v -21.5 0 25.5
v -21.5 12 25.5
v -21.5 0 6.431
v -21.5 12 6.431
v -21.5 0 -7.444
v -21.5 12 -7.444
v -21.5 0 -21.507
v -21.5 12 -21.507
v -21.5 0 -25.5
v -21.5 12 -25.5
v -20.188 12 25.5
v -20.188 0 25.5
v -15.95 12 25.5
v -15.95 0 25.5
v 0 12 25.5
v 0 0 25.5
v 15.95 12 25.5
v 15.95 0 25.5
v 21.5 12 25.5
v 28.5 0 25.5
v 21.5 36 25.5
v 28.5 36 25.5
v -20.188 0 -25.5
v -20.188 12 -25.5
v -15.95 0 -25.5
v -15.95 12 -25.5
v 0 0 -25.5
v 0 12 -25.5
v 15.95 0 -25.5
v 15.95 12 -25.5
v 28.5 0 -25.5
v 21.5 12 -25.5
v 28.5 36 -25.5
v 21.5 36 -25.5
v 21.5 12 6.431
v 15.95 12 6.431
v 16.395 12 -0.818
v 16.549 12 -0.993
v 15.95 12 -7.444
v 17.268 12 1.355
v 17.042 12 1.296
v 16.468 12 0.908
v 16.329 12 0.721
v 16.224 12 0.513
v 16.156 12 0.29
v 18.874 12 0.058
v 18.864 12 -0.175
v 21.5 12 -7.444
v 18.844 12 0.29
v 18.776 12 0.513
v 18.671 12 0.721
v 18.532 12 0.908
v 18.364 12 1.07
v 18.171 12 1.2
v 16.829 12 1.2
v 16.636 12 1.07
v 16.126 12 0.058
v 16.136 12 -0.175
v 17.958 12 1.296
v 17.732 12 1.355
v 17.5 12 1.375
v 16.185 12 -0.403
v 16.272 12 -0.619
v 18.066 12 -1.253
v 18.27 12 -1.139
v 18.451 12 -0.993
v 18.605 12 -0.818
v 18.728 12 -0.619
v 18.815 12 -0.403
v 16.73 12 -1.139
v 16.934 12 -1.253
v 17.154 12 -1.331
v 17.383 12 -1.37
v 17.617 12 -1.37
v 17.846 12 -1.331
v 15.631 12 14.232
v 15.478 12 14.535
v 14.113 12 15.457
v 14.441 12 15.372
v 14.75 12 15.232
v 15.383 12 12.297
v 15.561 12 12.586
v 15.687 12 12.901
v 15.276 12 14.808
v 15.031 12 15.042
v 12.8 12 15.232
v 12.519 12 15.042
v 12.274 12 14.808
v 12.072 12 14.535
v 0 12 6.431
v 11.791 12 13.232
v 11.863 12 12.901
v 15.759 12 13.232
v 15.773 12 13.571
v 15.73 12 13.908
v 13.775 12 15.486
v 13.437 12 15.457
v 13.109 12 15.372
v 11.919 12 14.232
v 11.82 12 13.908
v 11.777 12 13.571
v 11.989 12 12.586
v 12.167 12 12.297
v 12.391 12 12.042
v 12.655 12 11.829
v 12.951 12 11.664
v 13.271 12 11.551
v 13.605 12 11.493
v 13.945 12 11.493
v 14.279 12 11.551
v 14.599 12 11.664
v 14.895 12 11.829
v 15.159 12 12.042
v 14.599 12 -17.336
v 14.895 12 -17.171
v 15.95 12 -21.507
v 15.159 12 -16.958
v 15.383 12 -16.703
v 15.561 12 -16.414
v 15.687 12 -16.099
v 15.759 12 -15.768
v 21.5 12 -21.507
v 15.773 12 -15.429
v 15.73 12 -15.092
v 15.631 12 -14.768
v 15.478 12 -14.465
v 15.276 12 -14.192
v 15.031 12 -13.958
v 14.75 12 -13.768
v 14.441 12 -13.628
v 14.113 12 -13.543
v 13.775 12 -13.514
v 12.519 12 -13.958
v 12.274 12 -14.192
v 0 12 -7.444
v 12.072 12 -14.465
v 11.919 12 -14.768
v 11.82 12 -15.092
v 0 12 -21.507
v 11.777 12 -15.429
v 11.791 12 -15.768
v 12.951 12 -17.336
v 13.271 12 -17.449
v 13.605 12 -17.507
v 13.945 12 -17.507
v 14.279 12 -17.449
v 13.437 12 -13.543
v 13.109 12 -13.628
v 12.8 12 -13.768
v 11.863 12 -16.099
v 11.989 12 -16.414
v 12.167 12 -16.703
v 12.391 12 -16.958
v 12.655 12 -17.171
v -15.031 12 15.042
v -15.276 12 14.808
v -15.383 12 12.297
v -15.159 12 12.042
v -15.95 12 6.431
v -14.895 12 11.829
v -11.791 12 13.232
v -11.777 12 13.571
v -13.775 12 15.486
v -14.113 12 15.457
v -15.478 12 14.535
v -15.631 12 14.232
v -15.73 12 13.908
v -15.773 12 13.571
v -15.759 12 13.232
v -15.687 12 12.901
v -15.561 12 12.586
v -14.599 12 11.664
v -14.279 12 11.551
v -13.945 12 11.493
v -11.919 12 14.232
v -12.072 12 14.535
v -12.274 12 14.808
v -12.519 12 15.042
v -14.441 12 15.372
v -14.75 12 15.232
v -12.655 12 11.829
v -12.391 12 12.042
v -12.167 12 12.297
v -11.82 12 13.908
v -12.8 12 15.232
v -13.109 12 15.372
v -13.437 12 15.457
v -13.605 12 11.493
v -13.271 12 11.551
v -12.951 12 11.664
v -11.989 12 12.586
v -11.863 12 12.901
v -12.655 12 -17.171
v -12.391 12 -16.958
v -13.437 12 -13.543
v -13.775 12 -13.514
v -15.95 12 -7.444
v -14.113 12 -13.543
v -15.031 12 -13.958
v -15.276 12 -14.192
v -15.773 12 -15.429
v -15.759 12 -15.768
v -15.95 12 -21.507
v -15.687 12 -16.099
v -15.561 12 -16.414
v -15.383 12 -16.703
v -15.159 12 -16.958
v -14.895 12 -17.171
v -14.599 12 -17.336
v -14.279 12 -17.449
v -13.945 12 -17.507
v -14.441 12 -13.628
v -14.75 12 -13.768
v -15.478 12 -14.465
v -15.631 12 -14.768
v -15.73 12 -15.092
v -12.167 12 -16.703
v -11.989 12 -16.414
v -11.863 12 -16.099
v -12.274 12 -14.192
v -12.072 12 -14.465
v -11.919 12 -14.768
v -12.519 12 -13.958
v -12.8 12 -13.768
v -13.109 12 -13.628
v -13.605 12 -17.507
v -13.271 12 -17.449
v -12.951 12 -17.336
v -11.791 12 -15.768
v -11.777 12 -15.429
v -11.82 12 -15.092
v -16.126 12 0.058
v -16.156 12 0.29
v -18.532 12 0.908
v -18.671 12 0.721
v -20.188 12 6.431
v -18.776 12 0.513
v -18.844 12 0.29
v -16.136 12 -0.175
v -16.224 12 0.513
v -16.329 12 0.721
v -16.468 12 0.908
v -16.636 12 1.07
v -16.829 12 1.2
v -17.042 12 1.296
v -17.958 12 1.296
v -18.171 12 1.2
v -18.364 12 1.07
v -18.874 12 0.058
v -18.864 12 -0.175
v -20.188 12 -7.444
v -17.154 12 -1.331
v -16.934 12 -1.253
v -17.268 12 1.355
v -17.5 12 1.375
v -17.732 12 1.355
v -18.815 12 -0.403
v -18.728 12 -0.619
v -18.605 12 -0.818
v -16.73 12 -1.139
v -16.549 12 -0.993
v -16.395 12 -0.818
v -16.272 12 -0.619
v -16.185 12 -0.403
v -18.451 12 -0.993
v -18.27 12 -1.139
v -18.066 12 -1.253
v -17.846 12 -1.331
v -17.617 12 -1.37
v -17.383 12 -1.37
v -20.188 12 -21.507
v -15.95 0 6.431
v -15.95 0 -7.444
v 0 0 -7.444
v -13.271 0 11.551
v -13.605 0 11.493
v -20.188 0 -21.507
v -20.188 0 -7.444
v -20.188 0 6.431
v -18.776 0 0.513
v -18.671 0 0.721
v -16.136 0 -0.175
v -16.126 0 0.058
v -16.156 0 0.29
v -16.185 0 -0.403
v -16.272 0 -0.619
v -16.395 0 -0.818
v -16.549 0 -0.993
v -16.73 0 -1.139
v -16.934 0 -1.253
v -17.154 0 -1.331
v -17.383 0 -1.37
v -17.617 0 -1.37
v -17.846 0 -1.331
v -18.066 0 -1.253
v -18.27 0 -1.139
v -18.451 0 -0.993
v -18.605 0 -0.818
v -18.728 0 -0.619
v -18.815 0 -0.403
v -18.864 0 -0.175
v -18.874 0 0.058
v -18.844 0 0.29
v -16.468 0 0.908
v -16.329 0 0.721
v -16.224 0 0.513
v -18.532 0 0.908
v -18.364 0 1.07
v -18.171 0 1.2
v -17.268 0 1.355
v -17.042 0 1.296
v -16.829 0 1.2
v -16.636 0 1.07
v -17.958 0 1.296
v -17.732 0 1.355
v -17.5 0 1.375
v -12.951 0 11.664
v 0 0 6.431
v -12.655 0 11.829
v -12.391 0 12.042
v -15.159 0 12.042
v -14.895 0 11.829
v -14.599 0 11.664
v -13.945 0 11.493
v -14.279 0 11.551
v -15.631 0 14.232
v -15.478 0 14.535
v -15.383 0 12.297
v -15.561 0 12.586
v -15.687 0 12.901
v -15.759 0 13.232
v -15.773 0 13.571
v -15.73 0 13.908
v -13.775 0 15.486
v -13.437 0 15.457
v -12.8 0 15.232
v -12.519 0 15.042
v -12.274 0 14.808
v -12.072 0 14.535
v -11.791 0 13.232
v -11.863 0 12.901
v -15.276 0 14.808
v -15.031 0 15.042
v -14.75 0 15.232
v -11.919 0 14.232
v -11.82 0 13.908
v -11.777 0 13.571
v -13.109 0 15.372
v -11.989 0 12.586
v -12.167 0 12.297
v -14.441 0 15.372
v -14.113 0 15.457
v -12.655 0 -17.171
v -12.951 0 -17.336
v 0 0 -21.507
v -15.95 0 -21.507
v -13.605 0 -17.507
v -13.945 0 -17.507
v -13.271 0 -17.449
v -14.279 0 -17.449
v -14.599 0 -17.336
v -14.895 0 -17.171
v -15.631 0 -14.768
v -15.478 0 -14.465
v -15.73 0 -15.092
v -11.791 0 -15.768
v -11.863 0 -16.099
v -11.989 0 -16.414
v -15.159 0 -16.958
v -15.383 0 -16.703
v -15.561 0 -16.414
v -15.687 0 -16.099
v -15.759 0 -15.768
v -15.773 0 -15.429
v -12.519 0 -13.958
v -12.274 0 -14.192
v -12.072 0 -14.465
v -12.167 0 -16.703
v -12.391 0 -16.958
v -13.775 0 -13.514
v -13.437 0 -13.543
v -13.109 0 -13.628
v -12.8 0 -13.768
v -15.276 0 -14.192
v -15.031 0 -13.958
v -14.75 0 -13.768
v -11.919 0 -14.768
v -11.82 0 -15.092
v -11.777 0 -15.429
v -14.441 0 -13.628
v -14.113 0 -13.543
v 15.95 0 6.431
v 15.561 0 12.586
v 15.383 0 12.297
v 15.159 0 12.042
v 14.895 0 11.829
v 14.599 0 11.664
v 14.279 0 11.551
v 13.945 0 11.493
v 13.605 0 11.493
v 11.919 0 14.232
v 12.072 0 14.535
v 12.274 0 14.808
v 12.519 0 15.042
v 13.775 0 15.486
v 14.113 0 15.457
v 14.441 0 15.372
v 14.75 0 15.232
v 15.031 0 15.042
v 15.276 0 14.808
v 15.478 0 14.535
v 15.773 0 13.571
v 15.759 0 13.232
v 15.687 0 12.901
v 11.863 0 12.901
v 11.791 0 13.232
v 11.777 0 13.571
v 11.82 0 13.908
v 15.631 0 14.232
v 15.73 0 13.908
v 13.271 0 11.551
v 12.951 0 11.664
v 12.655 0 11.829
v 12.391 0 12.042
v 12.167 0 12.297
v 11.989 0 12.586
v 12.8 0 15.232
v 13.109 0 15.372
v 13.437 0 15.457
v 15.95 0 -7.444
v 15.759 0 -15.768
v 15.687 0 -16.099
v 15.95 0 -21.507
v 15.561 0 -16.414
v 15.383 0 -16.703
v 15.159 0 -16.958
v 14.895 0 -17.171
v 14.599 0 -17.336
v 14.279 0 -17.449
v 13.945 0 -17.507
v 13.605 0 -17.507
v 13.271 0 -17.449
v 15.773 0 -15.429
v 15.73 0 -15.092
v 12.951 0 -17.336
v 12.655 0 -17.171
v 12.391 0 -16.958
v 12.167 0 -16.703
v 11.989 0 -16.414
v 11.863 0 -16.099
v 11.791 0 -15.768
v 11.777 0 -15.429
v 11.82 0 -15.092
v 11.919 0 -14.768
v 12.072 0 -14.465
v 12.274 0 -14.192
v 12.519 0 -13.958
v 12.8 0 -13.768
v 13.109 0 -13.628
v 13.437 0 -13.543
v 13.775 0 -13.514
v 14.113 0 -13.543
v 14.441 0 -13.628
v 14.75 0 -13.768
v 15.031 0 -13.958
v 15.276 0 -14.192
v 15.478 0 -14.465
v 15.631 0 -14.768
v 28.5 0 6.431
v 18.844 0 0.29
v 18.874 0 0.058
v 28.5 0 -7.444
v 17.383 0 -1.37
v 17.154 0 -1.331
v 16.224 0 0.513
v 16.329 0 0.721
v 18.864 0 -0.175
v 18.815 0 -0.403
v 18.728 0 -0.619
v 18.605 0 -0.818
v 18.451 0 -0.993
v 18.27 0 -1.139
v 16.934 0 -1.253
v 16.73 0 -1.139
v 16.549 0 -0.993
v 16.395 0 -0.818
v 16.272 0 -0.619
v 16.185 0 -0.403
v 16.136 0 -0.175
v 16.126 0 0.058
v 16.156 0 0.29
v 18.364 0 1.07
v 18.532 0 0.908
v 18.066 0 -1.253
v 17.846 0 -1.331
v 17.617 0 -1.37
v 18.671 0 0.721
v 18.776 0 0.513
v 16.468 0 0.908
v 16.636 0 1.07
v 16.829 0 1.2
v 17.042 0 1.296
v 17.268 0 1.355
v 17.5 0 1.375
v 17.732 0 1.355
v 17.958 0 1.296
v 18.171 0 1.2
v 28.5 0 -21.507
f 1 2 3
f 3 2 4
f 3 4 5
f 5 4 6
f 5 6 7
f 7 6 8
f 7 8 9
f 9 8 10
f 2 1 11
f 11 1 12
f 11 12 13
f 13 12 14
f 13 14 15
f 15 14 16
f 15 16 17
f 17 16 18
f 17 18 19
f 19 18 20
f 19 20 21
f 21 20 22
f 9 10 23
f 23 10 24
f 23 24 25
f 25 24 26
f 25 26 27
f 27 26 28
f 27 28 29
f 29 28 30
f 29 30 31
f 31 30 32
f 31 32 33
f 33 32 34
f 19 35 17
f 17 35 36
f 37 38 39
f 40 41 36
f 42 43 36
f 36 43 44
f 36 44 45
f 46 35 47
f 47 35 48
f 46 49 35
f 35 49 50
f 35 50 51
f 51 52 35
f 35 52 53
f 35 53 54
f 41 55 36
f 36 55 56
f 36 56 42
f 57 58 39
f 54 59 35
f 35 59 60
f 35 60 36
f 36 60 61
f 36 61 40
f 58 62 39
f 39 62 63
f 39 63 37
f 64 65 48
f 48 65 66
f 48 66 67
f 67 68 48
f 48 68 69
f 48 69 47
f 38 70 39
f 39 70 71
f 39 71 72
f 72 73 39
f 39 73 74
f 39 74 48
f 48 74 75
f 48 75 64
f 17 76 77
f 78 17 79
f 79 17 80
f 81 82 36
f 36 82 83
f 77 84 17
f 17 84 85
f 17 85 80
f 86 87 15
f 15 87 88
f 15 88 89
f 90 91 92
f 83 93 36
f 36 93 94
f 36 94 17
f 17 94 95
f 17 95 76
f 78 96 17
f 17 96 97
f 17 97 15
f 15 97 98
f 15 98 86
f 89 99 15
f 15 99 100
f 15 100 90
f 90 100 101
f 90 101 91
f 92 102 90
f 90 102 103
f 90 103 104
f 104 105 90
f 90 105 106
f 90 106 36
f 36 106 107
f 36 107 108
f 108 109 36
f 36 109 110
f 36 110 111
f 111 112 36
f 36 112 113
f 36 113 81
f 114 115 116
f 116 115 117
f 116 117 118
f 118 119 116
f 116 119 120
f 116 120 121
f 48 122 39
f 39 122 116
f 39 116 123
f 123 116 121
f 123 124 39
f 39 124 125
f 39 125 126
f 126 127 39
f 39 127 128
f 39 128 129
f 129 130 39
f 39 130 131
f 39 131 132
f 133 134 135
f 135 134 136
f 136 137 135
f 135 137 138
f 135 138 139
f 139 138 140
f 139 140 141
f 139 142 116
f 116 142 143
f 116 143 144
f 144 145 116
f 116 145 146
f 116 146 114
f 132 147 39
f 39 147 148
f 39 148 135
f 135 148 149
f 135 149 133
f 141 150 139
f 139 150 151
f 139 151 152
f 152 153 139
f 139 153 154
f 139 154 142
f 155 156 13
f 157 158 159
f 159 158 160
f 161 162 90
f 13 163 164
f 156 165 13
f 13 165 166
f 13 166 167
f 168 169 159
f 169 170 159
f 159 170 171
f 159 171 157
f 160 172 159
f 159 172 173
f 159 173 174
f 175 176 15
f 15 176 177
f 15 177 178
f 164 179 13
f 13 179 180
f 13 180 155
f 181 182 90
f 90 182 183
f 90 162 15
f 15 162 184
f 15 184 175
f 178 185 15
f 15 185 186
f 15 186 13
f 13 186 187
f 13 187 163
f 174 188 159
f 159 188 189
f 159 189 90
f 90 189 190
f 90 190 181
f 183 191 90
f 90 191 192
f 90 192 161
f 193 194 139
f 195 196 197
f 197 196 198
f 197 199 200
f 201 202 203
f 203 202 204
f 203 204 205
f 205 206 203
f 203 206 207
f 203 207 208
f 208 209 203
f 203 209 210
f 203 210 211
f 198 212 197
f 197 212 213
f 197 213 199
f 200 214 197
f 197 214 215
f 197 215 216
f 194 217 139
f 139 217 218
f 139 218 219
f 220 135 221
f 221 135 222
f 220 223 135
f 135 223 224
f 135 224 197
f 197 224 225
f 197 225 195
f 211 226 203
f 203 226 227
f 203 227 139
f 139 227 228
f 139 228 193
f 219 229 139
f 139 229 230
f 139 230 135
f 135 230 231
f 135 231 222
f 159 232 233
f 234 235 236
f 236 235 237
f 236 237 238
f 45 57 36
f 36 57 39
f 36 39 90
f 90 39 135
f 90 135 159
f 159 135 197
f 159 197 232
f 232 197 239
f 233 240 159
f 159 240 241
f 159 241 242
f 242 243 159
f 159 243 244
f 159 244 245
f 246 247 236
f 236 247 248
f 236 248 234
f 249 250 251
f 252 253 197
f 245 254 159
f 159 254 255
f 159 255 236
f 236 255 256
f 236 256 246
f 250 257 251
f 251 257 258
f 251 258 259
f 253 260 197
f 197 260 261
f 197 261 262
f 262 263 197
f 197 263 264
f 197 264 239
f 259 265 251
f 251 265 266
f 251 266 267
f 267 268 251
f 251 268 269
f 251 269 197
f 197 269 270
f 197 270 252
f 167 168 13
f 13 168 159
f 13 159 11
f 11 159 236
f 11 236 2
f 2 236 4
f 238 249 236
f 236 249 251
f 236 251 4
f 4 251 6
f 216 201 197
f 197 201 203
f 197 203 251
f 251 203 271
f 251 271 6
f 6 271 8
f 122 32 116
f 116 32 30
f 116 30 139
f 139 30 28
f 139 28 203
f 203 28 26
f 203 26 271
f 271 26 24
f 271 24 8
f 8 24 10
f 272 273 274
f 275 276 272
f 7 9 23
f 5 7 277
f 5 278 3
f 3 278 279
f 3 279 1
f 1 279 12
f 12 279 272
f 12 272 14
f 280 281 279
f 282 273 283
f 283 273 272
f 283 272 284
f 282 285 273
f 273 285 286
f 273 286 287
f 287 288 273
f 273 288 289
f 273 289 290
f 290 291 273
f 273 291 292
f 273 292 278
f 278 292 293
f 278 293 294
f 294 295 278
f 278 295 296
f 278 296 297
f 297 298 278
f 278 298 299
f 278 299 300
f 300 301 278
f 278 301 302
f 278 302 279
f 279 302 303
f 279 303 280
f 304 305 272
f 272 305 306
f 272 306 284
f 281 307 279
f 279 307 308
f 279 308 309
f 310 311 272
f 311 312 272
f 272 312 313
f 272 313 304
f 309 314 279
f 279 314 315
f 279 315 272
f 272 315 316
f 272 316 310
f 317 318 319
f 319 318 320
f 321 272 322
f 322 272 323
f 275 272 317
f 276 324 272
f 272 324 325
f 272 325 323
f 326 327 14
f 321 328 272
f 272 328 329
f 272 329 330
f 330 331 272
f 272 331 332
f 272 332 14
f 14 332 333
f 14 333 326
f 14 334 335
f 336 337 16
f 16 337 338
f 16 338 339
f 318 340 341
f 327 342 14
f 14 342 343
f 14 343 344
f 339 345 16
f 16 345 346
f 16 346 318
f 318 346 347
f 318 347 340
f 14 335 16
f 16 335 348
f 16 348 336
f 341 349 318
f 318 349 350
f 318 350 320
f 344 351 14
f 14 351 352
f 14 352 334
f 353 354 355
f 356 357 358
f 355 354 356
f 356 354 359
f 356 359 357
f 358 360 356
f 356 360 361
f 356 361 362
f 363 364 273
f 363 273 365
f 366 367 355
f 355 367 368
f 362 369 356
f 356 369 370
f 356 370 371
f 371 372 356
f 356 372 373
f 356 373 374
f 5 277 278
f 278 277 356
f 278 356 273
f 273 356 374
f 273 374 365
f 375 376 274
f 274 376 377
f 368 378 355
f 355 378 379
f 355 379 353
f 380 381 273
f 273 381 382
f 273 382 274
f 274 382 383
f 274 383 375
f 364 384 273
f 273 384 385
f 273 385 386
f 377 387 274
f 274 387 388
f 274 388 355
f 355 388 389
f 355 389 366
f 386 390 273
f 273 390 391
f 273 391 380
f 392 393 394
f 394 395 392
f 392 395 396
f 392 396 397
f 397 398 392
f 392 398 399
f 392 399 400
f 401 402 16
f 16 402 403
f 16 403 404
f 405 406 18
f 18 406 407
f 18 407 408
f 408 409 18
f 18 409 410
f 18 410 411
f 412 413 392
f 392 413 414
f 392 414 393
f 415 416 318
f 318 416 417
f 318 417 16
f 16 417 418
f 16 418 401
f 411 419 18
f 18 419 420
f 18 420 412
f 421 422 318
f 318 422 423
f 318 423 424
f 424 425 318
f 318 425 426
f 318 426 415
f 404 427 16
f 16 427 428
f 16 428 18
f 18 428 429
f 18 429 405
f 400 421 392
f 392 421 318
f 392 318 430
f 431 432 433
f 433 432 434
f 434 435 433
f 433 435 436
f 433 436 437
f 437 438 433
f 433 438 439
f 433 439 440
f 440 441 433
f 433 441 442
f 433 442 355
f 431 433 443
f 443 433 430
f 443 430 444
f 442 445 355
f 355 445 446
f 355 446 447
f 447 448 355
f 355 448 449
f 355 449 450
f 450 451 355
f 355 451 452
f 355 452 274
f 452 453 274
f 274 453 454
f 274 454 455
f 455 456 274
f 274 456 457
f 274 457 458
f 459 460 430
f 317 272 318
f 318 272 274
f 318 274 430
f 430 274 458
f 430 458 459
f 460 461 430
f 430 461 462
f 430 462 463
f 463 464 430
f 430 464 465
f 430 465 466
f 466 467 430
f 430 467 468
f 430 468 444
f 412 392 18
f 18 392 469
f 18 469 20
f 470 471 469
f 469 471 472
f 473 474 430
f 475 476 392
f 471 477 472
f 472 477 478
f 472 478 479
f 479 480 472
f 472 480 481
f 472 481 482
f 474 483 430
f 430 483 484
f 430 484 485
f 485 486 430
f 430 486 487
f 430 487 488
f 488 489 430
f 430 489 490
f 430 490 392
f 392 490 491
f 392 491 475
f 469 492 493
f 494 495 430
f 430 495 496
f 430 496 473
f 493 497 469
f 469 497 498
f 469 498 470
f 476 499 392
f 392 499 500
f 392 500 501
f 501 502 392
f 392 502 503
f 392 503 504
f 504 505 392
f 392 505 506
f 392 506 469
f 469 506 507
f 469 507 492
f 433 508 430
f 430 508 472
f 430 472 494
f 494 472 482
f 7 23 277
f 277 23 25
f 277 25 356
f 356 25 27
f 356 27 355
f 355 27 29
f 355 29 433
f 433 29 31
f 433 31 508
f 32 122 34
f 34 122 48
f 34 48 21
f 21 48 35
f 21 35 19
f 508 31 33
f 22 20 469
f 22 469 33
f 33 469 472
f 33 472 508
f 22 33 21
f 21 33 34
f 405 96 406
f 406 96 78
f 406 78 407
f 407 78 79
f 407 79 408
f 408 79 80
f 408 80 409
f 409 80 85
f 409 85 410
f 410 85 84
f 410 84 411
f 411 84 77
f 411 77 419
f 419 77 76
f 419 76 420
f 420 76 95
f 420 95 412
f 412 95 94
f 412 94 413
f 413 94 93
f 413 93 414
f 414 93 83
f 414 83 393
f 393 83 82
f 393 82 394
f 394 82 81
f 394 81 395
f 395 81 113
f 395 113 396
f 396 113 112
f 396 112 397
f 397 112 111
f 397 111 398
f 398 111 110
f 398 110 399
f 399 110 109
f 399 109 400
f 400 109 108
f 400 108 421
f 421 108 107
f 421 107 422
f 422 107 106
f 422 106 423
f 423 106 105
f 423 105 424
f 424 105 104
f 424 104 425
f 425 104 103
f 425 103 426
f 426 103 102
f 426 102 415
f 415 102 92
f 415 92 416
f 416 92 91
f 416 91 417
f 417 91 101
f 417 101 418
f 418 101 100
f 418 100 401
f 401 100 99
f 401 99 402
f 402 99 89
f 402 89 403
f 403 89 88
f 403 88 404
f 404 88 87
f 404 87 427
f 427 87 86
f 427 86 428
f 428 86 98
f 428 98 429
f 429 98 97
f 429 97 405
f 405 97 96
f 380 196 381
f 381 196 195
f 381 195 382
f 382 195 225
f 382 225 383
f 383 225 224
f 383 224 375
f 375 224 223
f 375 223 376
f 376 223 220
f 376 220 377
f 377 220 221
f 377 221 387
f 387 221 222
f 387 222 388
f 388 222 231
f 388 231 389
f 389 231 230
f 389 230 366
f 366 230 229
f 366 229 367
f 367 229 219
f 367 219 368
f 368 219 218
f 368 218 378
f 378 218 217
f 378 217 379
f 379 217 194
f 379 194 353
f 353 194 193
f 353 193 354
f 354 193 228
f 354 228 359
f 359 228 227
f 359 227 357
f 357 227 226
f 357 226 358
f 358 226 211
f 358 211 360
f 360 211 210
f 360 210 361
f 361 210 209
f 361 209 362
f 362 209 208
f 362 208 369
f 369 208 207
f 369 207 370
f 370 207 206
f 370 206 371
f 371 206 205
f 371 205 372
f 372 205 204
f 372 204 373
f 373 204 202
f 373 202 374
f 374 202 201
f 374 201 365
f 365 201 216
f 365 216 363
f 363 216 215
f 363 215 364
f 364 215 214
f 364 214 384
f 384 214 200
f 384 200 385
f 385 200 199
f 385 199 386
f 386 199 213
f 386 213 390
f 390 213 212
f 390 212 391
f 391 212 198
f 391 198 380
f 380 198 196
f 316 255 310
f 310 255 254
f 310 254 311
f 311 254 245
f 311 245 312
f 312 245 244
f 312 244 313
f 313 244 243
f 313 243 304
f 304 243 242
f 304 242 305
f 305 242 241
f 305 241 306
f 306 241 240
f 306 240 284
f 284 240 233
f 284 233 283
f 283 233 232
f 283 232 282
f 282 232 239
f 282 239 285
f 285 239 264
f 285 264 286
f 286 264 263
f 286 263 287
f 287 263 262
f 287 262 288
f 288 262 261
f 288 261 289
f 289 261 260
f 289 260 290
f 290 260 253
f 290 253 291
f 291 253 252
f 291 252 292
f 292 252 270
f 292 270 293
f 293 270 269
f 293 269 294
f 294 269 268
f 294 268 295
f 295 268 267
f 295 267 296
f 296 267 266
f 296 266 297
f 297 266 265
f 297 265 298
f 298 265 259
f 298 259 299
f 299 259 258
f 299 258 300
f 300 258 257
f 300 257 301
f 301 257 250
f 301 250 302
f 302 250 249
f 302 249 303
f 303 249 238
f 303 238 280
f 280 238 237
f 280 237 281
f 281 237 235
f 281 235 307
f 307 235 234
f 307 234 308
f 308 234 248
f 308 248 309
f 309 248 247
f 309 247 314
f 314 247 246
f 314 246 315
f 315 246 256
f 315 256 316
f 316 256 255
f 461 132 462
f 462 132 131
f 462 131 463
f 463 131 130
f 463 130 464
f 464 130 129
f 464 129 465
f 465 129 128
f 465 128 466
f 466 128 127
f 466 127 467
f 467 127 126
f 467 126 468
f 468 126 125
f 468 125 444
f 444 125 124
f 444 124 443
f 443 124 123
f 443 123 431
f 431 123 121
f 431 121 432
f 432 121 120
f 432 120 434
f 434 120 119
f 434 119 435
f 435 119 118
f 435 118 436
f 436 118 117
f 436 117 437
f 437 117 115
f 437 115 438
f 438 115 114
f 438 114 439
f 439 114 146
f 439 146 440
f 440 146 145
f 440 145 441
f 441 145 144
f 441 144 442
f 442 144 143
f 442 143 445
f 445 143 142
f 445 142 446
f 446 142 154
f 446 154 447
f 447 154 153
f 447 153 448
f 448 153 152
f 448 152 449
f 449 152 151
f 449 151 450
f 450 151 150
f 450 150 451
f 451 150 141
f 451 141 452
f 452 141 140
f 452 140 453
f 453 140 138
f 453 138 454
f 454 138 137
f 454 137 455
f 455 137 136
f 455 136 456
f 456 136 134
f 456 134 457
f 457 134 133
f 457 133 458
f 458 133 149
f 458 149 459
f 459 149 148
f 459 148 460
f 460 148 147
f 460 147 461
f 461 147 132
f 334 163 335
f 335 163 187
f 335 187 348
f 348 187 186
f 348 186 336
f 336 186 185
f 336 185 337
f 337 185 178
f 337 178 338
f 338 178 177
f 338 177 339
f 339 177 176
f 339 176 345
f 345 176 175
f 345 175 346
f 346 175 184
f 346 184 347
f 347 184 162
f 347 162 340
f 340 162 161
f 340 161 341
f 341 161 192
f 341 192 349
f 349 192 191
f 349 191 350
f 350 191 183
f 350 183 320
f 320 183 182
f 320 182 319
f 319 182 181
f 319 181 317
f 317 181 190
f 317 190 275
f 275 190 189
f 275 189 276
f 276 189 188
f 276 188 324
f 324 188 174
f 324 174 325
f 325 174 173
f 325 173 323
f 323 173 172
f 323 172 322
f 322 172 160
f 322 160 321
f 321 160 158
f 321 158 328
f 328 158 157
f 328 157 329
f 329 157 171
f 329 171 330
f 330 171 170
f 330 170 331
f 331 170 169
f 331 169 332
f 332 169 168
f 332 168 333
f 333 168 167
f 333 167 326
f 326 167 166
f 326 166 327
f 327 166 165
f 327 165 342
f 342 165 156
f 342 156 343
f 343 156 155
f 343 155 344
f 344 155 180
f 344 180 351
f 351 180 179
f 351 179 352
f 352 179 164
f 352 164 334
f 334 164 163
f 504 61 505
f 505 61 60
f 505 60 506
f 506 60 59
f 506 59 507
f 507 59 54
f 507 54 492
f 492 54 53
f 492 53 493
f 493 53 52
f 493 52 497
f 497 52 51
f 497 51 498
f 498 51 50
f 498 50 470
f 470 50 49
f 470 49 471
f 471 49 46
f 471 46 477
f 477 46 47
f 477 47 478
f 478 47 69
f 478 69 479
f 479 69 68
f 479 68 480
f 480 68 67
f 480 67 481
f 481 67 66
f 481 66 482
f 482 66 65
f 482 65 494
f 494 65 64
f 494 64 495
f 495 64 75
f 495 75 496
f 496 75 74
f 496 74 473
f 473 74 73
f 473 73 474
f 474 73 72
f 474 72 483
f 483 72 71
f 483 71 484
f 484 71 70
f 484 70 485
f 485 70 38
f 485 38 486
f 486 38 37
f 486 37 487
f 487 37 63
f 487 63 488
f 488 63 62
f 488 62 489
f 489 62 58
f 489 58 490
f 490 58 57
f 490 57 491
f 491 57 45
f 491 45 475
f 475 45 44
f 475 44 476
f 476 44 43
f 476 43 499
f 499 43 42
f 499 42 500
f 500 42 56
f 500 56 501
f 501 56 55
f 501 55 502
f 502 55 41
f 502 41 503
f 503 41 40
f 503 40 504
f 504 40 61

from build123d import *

# Parameters (mm, degrees)
SKETCH1_W                = 43
SKETCH1_H                = 51
BOSS_EXTRUDE1_DEPTH      = 12
SKETCH2_W                = 7
SKETCH2_H                = 51
BOSS_EXTRUDE2_DEPTH      = 24
BOSS_EXTRUDE2_DEPTH_BACK = 12
SKETCH3_R                = 1.375
SKETCH3_R_2              = 2
CUT_EXTRUDE1_DEPTH       = 12


with BuildPart() as part:
    # Sketch1 → Boss-Extrude1 (new body)
    with BuildSketch(Plane(origin=(0, 0, 0), x_dir=(1, 0, 0), z_dir=(0, 1, 0))):
        Rectangle(SKETCH1_W, SKETCH1_H)
    extrude(amount=BOSS_EXTRUDE1_DEPTH)

    # Sketch2 → Boss-Extrude2 (add, two sides)
    with BuildSketch(Plane(origin=(0, 12, 0), x_dir=(1, 0, 0), z_dir=(0, 1, 0))) as boss_extrude2_sk:
        with Locations((25, 0)):
            Rectangle(SKETCH2_W, SKETCH2_H)
    extrude(amount=BOSS_EXTRUDE2_DEPTH)
    extrude(boss_extrude2_sk.sketch, amount=-BOSS_EXTRUDE2_DEPTH_BACK)

    # Sketch3 → Cut-Extrude1 (cut)
    with BuildSketch(Plane(origin=(0, 12, 0), x_dir=(1, 0, 0), z_dir=(0, 1, 0))):
        with Locations((17.5, 0)):
            Circle(SKETCH3_R)
        with Locations((-17.5, 0)):
            Circle(SKETCH3_R)
        with Locations((13.775, 15.513813063)):
            Circle(SKETCH3_R_2)
        with Locations((-13.775, 15.513813063)):
            Circle(SKETCH3_R_2)
        with Locations((13.775, -13.486186937)):
            Circle(SKETCH3_R_2)
        with Locations((-13.775, -13.486186937)):
            Circle(SKETCH3_R_2)
    extrude(amount=-CUT_EXTRUDE1_DEPTH, mode=Mode.SUBTRACT)


solid = part.part
